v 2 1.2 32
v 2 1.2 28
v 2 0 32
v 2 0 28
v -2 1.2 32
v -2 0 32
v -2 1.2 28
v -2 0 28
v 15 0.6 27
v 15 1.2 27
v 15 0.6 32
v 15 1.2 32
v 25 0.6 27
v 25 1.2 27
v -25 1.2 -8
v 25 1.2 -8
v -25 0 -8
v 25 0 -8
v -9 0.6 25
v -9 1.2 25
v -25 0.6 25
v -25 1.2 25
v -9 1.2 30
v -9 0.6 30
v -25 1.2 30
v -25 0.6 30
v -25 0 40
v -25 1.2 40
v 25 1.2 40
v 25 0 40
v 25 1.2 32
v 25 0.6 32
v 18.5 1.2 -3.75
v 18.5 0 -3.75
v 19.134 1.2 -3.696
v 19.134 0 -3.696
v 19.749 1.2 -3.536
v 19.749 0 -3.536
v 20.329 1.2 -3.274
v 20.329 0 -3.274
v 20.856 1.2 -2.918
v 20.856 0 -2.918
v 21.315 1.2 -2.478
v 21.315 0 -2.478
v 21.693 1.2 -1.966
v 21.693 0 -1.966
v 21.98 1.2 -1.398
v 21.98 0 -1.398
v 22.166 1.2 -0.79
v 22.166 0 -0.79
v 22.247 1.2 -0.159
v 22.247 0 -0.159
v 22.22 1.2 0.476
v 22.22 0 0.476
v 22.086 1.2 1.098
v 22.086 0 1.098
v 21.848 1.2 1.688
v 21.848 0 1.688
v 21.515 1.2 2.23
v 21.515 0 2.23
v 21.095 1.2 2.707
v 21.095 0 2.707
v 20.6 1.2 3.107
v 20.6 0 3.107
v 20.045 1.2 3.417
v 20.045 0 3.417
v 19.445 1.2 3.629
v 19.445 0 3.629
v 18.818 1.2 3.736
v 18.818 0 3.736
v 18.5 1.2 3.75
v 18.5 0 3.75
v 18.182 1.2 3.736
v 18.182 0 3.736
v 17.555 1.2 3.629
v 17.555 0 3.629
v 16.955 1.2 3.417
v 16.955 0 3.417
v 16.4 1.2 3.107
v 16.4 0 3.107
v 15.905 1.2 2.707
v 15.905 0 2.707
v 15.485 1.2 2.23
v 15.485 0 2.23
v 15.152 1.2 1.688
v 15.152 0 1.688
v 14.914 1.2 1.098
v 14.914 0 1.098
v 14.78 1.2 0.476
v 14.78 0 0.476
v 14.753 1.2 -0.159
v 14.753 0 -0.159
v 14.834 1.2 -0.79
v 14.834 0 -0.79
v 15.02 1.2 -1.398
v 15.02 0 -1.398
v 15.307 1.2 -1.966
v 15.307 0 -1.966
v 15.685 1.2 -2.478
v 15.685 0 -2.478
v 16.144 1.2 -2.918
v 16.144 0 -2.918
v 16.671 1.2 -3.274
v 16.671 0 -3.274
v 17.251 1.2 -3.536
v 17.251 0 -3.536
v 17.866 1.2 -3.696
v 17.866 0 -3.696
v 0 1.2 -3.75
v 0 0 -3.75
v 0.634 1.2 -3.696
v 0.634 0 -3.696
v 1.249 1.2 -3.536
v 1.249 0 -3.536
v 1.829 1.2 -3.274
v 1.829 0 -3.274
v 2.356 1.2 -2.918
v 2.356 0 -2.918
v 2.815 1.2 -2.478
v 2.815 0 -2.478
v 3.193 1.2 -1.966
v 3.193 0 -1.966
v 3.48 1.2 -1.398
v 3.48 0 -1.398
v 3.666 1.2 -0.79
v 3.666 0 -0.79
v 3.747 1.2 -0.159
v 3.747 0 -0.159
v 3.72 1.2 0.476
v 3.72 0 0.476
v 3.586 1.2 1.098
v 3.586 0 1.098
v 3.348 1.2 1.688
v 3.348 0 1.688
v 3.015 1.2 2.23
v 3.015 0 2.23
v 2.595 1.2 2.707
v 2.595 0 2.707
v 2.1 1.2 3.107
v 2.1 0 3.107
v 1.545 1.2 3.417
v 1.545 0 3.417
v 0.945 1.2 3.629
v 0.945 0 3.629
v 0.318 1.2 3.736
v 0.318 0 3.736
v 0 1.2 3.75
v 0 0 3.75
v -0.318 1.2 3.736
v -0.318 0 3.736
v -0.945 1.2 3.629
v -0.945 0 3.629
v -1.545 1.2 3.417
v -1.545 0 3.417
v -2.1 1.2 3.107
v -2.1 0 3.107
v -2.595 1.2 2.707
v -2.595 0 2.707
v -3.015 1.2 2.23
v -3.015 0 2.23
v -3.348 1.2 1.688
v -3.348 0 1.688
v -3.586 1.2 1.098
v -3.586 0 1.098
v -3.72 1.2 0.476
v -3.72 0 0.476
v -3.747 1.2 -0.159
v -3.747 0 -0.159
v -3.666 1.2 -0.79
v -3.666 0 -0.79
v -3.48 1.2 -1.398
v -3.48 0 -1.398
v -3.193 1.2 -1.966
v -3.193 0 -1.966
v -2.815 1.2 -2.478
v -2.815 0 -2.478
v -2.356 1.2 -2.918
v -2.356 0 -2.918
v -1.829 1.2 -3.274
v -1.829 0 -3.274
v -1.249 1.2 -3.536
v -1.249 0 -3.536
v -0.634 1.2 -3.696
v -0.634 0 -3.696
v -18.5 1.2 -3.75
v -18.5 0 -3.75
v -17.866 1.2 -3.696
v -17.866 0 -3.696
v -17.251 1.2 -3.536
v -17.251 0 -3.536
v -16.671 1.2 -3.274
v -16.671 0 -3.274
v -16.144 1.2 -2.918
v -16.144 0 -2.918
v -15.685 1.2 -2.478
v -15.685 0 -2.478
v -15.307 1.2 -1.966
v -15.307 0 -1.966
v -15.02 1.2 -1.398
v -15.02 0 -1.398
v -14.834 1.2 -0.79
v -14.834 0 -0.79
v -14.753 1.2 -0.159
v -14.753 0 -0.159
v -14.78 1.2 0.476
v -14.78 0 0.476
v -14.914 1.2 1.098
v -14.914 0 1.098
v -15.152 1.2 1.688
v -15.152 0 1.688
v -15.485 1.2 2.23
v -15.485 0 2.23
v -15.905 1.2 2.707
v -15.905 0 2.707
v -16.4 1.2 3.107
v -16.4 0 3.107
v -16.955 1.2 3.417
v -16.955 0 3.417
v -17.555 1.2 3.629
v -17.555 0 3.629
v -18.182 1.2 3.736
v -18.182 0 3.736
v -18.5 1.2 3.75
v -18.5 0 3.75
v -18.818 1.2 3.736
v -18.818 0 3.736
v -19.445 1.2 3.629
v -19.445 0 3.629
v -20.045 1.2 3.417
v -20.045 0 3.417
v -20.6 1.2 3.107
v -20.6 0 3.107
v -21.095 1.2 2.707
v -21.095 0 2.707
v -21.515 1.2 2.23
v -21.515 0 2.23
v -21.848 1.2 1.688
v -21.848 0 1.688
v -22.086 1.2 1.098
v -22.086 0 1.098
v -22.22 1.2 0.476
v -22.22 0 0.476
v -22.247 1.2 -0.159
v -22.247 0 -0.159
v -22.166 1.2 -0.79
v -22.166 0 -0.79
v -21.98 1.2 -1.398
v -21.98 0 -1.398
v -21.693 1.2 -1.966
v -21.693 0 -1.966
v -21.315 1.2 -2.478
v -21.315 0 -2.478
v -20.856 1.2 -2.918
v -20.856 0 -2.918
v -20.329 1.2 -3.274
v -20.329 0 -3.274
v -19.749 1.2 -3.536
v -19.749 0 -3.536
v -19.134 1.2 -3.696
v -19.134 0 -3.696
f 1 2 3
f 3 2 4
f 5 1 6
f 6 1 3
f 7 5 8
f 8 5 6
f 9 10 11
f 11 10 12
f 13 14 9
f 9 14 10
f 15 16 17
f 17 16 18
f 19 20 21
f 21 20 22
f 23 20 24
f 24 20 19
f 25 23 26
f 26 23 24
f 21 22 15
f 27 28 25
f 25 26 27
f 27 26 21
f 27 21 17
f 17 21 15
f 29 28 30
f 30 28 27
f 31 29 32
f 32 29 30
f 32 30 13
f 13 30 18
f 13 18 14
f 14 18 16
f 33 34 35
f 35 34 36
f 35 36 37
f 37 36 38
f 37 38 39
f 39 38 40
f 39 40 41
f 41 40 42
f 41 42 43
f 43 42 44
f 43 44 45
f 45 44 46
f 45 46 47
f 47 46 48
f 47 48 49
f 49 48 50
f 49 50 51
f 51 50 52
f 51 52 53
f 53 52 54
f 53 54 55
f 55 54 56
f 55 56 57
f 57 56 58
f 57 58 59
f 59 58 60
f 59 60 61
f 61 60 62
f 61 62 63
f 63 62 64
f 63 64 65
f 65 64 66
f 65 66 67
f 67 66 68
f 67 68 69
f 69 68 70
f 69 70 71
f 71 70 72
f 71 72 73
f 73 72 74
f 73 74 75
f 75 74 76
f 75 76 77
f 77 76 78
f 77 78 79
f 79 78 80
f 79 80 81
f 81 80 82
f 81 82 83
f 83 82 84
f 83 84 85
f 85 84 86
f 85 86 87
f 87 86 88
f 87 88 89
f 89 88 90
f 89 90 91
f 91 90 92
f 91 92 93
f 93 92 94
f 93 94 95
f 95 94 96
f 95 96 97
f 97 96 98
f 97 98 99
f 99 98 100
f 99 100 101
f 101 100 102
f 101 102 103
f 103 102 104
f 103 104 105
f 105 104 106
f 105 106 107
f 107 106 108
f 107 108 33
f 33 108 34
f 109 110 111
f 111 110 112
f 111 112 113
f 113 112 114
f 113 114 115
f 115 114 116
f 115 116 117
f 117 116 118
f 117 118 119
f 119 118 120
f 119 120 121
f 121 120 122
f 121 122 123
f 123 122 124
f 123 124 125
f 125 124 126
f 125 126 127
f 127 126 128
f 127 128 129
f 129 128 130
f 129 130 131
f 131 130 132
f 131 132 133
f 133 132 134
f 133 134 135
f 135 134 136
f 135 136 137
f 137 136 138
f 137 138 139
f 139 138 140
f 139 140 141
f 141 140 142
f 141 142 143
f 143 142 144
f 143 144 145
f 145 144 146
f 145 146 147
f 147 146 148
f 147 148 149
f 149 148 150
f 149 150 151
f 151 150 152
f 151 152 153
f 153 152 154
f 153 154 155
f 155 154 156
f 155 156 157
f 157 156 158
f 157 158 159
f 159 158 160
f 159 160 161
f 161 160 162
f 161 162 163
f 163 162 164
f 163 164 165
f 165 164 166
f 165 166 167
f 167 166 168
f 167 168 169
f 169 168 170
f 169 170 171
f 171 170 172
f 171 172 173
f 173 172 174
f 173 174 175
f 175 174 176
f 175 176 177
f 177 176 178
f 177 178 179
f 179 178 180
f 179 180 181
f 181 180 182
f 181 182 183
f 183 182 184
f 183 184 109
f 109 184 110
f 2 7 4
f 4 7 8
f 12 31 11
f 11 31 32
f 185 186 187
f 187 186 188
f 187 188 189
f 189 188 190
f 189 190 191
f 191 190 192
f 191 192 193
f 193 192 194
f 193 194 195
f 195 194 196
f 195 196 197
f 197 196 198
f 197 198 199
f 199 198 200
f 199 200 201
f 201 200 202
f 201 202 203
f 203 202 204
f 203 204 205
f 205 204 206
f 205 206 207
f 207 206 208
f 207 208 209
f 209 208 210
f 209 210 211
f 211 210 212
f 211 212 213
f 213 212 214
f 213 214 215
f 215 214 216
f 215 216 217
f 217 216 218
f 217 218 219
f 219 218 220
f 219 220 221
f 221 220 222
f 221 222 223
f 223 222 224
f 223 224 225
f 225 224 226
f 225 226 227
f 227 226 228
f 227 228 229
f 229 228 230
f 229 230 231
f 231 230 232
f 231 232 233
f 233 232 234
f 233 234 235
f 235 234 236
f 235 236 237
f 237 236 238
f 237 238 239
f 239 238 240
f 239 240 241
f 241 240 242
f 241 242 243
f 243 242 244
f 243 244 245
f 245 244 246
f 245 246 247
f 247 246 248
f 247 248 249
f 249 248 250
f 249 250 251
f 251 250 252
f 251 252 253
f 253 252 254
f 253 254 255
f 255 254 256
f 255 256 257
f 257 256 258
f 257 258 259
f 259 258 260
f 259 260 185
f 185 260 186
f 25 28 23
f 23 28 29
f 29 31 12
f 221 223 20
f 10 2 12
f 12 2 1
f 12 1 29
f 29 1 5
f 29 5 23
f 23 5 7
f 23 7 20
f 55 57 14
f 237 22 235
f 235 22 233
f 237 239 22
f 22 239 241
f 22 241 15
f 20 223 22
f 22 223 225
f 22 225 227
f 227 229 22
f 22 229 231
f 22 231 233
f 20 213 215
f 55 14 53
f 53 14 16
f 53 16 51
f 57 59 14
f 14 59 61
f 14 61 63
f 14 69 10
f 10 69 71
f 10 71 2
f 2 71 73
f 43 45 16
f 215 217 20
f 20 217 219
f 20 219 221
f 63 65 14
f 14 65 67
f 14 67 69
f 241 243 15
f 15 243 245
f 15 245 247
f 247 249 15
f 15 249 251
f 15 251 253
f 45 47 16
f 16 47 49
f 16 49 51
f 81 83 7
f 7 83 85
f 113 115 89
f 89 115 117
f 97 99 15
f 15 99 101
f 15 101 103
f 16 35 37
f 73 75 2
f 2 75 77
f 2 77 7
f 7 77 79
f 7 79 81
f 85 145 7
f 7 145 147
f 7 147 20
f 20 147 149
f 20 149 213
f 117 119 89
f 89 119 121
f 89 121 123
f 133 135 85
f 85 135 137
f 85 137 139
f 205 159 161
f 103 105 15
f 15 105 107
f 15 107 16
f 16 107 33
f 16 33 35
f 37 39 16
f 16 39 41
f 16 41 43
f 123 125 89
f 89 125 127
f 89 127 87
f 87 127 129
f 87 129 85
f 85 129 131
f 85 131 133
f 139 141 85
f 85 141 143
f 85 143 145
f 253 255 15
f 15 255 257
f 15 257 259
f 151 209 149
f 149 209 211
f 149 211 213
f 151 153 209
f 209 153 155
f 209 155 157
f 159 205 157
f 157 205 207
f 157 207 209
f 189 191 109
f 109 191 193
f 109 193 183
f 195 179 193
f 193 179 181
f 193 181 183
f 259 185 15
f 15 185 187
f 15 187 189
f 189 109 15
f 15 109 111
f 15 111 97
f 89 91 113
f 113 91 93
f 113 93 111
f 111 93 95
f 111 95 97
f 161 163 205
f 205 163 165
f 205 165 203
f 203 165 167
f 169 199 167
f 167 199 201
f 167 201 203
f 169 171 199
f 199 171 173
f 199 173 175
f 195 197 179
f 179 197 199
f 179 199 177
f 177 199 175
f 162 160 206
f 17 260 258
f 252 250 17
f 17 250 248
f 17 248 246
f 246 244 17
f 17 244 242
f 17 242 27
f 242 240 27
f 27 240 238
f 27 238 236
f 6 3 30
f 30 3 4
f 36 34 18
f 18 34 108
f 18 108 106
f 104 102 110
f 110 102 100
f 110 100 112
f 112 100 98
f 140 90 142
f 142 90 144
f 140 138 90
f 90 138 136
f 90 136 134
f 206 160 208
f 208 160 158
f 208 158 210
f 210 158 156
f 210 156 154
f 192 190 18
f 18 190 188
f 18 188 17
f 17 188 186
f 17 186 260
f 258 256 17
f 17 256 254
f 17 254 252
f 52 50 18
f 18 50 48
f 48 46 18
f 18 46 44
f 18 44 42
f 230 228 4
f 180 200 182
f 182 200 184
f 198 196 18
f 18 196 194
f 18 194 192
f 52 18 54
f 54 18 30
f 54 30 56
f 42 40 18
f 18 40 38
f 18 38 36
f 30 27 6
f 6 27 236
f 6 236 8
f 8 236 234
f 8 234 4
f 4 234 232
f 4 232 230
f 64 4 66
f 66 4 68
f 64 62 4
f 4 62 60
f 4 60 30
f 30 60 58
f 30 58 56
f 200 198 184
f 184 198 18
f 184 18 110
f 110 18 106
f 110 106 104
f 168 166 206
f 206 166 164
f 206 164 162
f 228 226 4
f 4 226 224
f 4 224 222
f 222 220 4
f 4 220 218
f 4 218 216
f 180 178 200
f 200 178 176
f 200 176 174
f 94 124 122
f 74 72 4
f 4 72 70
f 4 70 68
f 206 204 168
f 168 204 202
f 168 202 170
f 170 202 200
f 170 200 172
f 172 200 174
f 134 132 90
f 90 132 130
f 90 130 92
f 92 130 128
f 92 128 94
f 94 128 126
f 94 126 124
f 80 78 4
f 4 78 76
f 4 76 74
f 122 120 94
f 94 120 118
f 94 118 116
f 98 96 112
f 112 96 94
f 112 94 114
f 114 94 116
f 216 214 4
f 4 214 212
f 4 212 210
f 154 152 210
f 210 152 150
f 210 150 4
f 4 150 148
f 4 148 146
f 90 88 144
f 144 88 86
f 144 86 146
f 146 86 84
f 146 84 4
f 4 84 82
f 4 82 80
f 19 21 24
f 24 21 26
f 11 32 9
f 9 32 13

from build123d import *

# Parameters (mm, degrees)
SKETCH1_W           = 4
SKETCH1_H           = 4
SKETCH1_R           = 3.7500052
BOSS_EXTRUDE1_DEPTH = 1.2
SKETCH1_5_W         = 16
SKETCH1_5_H         = 5
SKETCH1_5_W_2       = 10
BOSS_EXTRUDE3_DEPTH = 0.6


with BuildPart() as part:
    # Sketch1 → Boss-Extrude1 (new body)
    with BuildSketch(Plane(origin=(0, 0, 0), x_dir=(1, 0, 0), z_dir=(0, 1, 0))):
        Polygon((-25, -30), (-25, -40), (25, -40), (25, -32), (15, -32), (15, -27), (25, -27), (25, 8), (-25, 8), (-25, -25), (-9, -25), (-9, -30), align=None)
        with Locations((0, -30)):
            Rectangle(SKETCH1_W, SKETCH1_H, mode=Mode.SUBTRACT)
        with Locations((-18.5, 0)):
            Circle(SKETCH1_R, mode=Mode.SUBTRACT)
        Circle(SKETCH1_R, mode=Mode.SUBTRACT)
        with Locations((18.5, 0)):
            Circle(SKETCH1_R, mode=Mode.SUBTRACT)
    extrude(amount=BOSS_EXTRUDE1_DEPTH)

    # Sketch1<5> → Boss-Extrude3 (add)
    with BuildSketch(Plane(origin=(0, 0, 0), x_dir=(1, 0, 0), z_dir=(0, 1, 0))):
        with Locations((-17, -27.5)):
            Rectangle(SKETCH1_5_W, SKETCH1_5_H)
        with Locations((20, -29.5)):
            Rectangle(SKETCH1_5_W_2, SKETCH1_5_H)
    extrude(amount=BOSS_EXTRUDE3_DEPTH)


solid = part.part
